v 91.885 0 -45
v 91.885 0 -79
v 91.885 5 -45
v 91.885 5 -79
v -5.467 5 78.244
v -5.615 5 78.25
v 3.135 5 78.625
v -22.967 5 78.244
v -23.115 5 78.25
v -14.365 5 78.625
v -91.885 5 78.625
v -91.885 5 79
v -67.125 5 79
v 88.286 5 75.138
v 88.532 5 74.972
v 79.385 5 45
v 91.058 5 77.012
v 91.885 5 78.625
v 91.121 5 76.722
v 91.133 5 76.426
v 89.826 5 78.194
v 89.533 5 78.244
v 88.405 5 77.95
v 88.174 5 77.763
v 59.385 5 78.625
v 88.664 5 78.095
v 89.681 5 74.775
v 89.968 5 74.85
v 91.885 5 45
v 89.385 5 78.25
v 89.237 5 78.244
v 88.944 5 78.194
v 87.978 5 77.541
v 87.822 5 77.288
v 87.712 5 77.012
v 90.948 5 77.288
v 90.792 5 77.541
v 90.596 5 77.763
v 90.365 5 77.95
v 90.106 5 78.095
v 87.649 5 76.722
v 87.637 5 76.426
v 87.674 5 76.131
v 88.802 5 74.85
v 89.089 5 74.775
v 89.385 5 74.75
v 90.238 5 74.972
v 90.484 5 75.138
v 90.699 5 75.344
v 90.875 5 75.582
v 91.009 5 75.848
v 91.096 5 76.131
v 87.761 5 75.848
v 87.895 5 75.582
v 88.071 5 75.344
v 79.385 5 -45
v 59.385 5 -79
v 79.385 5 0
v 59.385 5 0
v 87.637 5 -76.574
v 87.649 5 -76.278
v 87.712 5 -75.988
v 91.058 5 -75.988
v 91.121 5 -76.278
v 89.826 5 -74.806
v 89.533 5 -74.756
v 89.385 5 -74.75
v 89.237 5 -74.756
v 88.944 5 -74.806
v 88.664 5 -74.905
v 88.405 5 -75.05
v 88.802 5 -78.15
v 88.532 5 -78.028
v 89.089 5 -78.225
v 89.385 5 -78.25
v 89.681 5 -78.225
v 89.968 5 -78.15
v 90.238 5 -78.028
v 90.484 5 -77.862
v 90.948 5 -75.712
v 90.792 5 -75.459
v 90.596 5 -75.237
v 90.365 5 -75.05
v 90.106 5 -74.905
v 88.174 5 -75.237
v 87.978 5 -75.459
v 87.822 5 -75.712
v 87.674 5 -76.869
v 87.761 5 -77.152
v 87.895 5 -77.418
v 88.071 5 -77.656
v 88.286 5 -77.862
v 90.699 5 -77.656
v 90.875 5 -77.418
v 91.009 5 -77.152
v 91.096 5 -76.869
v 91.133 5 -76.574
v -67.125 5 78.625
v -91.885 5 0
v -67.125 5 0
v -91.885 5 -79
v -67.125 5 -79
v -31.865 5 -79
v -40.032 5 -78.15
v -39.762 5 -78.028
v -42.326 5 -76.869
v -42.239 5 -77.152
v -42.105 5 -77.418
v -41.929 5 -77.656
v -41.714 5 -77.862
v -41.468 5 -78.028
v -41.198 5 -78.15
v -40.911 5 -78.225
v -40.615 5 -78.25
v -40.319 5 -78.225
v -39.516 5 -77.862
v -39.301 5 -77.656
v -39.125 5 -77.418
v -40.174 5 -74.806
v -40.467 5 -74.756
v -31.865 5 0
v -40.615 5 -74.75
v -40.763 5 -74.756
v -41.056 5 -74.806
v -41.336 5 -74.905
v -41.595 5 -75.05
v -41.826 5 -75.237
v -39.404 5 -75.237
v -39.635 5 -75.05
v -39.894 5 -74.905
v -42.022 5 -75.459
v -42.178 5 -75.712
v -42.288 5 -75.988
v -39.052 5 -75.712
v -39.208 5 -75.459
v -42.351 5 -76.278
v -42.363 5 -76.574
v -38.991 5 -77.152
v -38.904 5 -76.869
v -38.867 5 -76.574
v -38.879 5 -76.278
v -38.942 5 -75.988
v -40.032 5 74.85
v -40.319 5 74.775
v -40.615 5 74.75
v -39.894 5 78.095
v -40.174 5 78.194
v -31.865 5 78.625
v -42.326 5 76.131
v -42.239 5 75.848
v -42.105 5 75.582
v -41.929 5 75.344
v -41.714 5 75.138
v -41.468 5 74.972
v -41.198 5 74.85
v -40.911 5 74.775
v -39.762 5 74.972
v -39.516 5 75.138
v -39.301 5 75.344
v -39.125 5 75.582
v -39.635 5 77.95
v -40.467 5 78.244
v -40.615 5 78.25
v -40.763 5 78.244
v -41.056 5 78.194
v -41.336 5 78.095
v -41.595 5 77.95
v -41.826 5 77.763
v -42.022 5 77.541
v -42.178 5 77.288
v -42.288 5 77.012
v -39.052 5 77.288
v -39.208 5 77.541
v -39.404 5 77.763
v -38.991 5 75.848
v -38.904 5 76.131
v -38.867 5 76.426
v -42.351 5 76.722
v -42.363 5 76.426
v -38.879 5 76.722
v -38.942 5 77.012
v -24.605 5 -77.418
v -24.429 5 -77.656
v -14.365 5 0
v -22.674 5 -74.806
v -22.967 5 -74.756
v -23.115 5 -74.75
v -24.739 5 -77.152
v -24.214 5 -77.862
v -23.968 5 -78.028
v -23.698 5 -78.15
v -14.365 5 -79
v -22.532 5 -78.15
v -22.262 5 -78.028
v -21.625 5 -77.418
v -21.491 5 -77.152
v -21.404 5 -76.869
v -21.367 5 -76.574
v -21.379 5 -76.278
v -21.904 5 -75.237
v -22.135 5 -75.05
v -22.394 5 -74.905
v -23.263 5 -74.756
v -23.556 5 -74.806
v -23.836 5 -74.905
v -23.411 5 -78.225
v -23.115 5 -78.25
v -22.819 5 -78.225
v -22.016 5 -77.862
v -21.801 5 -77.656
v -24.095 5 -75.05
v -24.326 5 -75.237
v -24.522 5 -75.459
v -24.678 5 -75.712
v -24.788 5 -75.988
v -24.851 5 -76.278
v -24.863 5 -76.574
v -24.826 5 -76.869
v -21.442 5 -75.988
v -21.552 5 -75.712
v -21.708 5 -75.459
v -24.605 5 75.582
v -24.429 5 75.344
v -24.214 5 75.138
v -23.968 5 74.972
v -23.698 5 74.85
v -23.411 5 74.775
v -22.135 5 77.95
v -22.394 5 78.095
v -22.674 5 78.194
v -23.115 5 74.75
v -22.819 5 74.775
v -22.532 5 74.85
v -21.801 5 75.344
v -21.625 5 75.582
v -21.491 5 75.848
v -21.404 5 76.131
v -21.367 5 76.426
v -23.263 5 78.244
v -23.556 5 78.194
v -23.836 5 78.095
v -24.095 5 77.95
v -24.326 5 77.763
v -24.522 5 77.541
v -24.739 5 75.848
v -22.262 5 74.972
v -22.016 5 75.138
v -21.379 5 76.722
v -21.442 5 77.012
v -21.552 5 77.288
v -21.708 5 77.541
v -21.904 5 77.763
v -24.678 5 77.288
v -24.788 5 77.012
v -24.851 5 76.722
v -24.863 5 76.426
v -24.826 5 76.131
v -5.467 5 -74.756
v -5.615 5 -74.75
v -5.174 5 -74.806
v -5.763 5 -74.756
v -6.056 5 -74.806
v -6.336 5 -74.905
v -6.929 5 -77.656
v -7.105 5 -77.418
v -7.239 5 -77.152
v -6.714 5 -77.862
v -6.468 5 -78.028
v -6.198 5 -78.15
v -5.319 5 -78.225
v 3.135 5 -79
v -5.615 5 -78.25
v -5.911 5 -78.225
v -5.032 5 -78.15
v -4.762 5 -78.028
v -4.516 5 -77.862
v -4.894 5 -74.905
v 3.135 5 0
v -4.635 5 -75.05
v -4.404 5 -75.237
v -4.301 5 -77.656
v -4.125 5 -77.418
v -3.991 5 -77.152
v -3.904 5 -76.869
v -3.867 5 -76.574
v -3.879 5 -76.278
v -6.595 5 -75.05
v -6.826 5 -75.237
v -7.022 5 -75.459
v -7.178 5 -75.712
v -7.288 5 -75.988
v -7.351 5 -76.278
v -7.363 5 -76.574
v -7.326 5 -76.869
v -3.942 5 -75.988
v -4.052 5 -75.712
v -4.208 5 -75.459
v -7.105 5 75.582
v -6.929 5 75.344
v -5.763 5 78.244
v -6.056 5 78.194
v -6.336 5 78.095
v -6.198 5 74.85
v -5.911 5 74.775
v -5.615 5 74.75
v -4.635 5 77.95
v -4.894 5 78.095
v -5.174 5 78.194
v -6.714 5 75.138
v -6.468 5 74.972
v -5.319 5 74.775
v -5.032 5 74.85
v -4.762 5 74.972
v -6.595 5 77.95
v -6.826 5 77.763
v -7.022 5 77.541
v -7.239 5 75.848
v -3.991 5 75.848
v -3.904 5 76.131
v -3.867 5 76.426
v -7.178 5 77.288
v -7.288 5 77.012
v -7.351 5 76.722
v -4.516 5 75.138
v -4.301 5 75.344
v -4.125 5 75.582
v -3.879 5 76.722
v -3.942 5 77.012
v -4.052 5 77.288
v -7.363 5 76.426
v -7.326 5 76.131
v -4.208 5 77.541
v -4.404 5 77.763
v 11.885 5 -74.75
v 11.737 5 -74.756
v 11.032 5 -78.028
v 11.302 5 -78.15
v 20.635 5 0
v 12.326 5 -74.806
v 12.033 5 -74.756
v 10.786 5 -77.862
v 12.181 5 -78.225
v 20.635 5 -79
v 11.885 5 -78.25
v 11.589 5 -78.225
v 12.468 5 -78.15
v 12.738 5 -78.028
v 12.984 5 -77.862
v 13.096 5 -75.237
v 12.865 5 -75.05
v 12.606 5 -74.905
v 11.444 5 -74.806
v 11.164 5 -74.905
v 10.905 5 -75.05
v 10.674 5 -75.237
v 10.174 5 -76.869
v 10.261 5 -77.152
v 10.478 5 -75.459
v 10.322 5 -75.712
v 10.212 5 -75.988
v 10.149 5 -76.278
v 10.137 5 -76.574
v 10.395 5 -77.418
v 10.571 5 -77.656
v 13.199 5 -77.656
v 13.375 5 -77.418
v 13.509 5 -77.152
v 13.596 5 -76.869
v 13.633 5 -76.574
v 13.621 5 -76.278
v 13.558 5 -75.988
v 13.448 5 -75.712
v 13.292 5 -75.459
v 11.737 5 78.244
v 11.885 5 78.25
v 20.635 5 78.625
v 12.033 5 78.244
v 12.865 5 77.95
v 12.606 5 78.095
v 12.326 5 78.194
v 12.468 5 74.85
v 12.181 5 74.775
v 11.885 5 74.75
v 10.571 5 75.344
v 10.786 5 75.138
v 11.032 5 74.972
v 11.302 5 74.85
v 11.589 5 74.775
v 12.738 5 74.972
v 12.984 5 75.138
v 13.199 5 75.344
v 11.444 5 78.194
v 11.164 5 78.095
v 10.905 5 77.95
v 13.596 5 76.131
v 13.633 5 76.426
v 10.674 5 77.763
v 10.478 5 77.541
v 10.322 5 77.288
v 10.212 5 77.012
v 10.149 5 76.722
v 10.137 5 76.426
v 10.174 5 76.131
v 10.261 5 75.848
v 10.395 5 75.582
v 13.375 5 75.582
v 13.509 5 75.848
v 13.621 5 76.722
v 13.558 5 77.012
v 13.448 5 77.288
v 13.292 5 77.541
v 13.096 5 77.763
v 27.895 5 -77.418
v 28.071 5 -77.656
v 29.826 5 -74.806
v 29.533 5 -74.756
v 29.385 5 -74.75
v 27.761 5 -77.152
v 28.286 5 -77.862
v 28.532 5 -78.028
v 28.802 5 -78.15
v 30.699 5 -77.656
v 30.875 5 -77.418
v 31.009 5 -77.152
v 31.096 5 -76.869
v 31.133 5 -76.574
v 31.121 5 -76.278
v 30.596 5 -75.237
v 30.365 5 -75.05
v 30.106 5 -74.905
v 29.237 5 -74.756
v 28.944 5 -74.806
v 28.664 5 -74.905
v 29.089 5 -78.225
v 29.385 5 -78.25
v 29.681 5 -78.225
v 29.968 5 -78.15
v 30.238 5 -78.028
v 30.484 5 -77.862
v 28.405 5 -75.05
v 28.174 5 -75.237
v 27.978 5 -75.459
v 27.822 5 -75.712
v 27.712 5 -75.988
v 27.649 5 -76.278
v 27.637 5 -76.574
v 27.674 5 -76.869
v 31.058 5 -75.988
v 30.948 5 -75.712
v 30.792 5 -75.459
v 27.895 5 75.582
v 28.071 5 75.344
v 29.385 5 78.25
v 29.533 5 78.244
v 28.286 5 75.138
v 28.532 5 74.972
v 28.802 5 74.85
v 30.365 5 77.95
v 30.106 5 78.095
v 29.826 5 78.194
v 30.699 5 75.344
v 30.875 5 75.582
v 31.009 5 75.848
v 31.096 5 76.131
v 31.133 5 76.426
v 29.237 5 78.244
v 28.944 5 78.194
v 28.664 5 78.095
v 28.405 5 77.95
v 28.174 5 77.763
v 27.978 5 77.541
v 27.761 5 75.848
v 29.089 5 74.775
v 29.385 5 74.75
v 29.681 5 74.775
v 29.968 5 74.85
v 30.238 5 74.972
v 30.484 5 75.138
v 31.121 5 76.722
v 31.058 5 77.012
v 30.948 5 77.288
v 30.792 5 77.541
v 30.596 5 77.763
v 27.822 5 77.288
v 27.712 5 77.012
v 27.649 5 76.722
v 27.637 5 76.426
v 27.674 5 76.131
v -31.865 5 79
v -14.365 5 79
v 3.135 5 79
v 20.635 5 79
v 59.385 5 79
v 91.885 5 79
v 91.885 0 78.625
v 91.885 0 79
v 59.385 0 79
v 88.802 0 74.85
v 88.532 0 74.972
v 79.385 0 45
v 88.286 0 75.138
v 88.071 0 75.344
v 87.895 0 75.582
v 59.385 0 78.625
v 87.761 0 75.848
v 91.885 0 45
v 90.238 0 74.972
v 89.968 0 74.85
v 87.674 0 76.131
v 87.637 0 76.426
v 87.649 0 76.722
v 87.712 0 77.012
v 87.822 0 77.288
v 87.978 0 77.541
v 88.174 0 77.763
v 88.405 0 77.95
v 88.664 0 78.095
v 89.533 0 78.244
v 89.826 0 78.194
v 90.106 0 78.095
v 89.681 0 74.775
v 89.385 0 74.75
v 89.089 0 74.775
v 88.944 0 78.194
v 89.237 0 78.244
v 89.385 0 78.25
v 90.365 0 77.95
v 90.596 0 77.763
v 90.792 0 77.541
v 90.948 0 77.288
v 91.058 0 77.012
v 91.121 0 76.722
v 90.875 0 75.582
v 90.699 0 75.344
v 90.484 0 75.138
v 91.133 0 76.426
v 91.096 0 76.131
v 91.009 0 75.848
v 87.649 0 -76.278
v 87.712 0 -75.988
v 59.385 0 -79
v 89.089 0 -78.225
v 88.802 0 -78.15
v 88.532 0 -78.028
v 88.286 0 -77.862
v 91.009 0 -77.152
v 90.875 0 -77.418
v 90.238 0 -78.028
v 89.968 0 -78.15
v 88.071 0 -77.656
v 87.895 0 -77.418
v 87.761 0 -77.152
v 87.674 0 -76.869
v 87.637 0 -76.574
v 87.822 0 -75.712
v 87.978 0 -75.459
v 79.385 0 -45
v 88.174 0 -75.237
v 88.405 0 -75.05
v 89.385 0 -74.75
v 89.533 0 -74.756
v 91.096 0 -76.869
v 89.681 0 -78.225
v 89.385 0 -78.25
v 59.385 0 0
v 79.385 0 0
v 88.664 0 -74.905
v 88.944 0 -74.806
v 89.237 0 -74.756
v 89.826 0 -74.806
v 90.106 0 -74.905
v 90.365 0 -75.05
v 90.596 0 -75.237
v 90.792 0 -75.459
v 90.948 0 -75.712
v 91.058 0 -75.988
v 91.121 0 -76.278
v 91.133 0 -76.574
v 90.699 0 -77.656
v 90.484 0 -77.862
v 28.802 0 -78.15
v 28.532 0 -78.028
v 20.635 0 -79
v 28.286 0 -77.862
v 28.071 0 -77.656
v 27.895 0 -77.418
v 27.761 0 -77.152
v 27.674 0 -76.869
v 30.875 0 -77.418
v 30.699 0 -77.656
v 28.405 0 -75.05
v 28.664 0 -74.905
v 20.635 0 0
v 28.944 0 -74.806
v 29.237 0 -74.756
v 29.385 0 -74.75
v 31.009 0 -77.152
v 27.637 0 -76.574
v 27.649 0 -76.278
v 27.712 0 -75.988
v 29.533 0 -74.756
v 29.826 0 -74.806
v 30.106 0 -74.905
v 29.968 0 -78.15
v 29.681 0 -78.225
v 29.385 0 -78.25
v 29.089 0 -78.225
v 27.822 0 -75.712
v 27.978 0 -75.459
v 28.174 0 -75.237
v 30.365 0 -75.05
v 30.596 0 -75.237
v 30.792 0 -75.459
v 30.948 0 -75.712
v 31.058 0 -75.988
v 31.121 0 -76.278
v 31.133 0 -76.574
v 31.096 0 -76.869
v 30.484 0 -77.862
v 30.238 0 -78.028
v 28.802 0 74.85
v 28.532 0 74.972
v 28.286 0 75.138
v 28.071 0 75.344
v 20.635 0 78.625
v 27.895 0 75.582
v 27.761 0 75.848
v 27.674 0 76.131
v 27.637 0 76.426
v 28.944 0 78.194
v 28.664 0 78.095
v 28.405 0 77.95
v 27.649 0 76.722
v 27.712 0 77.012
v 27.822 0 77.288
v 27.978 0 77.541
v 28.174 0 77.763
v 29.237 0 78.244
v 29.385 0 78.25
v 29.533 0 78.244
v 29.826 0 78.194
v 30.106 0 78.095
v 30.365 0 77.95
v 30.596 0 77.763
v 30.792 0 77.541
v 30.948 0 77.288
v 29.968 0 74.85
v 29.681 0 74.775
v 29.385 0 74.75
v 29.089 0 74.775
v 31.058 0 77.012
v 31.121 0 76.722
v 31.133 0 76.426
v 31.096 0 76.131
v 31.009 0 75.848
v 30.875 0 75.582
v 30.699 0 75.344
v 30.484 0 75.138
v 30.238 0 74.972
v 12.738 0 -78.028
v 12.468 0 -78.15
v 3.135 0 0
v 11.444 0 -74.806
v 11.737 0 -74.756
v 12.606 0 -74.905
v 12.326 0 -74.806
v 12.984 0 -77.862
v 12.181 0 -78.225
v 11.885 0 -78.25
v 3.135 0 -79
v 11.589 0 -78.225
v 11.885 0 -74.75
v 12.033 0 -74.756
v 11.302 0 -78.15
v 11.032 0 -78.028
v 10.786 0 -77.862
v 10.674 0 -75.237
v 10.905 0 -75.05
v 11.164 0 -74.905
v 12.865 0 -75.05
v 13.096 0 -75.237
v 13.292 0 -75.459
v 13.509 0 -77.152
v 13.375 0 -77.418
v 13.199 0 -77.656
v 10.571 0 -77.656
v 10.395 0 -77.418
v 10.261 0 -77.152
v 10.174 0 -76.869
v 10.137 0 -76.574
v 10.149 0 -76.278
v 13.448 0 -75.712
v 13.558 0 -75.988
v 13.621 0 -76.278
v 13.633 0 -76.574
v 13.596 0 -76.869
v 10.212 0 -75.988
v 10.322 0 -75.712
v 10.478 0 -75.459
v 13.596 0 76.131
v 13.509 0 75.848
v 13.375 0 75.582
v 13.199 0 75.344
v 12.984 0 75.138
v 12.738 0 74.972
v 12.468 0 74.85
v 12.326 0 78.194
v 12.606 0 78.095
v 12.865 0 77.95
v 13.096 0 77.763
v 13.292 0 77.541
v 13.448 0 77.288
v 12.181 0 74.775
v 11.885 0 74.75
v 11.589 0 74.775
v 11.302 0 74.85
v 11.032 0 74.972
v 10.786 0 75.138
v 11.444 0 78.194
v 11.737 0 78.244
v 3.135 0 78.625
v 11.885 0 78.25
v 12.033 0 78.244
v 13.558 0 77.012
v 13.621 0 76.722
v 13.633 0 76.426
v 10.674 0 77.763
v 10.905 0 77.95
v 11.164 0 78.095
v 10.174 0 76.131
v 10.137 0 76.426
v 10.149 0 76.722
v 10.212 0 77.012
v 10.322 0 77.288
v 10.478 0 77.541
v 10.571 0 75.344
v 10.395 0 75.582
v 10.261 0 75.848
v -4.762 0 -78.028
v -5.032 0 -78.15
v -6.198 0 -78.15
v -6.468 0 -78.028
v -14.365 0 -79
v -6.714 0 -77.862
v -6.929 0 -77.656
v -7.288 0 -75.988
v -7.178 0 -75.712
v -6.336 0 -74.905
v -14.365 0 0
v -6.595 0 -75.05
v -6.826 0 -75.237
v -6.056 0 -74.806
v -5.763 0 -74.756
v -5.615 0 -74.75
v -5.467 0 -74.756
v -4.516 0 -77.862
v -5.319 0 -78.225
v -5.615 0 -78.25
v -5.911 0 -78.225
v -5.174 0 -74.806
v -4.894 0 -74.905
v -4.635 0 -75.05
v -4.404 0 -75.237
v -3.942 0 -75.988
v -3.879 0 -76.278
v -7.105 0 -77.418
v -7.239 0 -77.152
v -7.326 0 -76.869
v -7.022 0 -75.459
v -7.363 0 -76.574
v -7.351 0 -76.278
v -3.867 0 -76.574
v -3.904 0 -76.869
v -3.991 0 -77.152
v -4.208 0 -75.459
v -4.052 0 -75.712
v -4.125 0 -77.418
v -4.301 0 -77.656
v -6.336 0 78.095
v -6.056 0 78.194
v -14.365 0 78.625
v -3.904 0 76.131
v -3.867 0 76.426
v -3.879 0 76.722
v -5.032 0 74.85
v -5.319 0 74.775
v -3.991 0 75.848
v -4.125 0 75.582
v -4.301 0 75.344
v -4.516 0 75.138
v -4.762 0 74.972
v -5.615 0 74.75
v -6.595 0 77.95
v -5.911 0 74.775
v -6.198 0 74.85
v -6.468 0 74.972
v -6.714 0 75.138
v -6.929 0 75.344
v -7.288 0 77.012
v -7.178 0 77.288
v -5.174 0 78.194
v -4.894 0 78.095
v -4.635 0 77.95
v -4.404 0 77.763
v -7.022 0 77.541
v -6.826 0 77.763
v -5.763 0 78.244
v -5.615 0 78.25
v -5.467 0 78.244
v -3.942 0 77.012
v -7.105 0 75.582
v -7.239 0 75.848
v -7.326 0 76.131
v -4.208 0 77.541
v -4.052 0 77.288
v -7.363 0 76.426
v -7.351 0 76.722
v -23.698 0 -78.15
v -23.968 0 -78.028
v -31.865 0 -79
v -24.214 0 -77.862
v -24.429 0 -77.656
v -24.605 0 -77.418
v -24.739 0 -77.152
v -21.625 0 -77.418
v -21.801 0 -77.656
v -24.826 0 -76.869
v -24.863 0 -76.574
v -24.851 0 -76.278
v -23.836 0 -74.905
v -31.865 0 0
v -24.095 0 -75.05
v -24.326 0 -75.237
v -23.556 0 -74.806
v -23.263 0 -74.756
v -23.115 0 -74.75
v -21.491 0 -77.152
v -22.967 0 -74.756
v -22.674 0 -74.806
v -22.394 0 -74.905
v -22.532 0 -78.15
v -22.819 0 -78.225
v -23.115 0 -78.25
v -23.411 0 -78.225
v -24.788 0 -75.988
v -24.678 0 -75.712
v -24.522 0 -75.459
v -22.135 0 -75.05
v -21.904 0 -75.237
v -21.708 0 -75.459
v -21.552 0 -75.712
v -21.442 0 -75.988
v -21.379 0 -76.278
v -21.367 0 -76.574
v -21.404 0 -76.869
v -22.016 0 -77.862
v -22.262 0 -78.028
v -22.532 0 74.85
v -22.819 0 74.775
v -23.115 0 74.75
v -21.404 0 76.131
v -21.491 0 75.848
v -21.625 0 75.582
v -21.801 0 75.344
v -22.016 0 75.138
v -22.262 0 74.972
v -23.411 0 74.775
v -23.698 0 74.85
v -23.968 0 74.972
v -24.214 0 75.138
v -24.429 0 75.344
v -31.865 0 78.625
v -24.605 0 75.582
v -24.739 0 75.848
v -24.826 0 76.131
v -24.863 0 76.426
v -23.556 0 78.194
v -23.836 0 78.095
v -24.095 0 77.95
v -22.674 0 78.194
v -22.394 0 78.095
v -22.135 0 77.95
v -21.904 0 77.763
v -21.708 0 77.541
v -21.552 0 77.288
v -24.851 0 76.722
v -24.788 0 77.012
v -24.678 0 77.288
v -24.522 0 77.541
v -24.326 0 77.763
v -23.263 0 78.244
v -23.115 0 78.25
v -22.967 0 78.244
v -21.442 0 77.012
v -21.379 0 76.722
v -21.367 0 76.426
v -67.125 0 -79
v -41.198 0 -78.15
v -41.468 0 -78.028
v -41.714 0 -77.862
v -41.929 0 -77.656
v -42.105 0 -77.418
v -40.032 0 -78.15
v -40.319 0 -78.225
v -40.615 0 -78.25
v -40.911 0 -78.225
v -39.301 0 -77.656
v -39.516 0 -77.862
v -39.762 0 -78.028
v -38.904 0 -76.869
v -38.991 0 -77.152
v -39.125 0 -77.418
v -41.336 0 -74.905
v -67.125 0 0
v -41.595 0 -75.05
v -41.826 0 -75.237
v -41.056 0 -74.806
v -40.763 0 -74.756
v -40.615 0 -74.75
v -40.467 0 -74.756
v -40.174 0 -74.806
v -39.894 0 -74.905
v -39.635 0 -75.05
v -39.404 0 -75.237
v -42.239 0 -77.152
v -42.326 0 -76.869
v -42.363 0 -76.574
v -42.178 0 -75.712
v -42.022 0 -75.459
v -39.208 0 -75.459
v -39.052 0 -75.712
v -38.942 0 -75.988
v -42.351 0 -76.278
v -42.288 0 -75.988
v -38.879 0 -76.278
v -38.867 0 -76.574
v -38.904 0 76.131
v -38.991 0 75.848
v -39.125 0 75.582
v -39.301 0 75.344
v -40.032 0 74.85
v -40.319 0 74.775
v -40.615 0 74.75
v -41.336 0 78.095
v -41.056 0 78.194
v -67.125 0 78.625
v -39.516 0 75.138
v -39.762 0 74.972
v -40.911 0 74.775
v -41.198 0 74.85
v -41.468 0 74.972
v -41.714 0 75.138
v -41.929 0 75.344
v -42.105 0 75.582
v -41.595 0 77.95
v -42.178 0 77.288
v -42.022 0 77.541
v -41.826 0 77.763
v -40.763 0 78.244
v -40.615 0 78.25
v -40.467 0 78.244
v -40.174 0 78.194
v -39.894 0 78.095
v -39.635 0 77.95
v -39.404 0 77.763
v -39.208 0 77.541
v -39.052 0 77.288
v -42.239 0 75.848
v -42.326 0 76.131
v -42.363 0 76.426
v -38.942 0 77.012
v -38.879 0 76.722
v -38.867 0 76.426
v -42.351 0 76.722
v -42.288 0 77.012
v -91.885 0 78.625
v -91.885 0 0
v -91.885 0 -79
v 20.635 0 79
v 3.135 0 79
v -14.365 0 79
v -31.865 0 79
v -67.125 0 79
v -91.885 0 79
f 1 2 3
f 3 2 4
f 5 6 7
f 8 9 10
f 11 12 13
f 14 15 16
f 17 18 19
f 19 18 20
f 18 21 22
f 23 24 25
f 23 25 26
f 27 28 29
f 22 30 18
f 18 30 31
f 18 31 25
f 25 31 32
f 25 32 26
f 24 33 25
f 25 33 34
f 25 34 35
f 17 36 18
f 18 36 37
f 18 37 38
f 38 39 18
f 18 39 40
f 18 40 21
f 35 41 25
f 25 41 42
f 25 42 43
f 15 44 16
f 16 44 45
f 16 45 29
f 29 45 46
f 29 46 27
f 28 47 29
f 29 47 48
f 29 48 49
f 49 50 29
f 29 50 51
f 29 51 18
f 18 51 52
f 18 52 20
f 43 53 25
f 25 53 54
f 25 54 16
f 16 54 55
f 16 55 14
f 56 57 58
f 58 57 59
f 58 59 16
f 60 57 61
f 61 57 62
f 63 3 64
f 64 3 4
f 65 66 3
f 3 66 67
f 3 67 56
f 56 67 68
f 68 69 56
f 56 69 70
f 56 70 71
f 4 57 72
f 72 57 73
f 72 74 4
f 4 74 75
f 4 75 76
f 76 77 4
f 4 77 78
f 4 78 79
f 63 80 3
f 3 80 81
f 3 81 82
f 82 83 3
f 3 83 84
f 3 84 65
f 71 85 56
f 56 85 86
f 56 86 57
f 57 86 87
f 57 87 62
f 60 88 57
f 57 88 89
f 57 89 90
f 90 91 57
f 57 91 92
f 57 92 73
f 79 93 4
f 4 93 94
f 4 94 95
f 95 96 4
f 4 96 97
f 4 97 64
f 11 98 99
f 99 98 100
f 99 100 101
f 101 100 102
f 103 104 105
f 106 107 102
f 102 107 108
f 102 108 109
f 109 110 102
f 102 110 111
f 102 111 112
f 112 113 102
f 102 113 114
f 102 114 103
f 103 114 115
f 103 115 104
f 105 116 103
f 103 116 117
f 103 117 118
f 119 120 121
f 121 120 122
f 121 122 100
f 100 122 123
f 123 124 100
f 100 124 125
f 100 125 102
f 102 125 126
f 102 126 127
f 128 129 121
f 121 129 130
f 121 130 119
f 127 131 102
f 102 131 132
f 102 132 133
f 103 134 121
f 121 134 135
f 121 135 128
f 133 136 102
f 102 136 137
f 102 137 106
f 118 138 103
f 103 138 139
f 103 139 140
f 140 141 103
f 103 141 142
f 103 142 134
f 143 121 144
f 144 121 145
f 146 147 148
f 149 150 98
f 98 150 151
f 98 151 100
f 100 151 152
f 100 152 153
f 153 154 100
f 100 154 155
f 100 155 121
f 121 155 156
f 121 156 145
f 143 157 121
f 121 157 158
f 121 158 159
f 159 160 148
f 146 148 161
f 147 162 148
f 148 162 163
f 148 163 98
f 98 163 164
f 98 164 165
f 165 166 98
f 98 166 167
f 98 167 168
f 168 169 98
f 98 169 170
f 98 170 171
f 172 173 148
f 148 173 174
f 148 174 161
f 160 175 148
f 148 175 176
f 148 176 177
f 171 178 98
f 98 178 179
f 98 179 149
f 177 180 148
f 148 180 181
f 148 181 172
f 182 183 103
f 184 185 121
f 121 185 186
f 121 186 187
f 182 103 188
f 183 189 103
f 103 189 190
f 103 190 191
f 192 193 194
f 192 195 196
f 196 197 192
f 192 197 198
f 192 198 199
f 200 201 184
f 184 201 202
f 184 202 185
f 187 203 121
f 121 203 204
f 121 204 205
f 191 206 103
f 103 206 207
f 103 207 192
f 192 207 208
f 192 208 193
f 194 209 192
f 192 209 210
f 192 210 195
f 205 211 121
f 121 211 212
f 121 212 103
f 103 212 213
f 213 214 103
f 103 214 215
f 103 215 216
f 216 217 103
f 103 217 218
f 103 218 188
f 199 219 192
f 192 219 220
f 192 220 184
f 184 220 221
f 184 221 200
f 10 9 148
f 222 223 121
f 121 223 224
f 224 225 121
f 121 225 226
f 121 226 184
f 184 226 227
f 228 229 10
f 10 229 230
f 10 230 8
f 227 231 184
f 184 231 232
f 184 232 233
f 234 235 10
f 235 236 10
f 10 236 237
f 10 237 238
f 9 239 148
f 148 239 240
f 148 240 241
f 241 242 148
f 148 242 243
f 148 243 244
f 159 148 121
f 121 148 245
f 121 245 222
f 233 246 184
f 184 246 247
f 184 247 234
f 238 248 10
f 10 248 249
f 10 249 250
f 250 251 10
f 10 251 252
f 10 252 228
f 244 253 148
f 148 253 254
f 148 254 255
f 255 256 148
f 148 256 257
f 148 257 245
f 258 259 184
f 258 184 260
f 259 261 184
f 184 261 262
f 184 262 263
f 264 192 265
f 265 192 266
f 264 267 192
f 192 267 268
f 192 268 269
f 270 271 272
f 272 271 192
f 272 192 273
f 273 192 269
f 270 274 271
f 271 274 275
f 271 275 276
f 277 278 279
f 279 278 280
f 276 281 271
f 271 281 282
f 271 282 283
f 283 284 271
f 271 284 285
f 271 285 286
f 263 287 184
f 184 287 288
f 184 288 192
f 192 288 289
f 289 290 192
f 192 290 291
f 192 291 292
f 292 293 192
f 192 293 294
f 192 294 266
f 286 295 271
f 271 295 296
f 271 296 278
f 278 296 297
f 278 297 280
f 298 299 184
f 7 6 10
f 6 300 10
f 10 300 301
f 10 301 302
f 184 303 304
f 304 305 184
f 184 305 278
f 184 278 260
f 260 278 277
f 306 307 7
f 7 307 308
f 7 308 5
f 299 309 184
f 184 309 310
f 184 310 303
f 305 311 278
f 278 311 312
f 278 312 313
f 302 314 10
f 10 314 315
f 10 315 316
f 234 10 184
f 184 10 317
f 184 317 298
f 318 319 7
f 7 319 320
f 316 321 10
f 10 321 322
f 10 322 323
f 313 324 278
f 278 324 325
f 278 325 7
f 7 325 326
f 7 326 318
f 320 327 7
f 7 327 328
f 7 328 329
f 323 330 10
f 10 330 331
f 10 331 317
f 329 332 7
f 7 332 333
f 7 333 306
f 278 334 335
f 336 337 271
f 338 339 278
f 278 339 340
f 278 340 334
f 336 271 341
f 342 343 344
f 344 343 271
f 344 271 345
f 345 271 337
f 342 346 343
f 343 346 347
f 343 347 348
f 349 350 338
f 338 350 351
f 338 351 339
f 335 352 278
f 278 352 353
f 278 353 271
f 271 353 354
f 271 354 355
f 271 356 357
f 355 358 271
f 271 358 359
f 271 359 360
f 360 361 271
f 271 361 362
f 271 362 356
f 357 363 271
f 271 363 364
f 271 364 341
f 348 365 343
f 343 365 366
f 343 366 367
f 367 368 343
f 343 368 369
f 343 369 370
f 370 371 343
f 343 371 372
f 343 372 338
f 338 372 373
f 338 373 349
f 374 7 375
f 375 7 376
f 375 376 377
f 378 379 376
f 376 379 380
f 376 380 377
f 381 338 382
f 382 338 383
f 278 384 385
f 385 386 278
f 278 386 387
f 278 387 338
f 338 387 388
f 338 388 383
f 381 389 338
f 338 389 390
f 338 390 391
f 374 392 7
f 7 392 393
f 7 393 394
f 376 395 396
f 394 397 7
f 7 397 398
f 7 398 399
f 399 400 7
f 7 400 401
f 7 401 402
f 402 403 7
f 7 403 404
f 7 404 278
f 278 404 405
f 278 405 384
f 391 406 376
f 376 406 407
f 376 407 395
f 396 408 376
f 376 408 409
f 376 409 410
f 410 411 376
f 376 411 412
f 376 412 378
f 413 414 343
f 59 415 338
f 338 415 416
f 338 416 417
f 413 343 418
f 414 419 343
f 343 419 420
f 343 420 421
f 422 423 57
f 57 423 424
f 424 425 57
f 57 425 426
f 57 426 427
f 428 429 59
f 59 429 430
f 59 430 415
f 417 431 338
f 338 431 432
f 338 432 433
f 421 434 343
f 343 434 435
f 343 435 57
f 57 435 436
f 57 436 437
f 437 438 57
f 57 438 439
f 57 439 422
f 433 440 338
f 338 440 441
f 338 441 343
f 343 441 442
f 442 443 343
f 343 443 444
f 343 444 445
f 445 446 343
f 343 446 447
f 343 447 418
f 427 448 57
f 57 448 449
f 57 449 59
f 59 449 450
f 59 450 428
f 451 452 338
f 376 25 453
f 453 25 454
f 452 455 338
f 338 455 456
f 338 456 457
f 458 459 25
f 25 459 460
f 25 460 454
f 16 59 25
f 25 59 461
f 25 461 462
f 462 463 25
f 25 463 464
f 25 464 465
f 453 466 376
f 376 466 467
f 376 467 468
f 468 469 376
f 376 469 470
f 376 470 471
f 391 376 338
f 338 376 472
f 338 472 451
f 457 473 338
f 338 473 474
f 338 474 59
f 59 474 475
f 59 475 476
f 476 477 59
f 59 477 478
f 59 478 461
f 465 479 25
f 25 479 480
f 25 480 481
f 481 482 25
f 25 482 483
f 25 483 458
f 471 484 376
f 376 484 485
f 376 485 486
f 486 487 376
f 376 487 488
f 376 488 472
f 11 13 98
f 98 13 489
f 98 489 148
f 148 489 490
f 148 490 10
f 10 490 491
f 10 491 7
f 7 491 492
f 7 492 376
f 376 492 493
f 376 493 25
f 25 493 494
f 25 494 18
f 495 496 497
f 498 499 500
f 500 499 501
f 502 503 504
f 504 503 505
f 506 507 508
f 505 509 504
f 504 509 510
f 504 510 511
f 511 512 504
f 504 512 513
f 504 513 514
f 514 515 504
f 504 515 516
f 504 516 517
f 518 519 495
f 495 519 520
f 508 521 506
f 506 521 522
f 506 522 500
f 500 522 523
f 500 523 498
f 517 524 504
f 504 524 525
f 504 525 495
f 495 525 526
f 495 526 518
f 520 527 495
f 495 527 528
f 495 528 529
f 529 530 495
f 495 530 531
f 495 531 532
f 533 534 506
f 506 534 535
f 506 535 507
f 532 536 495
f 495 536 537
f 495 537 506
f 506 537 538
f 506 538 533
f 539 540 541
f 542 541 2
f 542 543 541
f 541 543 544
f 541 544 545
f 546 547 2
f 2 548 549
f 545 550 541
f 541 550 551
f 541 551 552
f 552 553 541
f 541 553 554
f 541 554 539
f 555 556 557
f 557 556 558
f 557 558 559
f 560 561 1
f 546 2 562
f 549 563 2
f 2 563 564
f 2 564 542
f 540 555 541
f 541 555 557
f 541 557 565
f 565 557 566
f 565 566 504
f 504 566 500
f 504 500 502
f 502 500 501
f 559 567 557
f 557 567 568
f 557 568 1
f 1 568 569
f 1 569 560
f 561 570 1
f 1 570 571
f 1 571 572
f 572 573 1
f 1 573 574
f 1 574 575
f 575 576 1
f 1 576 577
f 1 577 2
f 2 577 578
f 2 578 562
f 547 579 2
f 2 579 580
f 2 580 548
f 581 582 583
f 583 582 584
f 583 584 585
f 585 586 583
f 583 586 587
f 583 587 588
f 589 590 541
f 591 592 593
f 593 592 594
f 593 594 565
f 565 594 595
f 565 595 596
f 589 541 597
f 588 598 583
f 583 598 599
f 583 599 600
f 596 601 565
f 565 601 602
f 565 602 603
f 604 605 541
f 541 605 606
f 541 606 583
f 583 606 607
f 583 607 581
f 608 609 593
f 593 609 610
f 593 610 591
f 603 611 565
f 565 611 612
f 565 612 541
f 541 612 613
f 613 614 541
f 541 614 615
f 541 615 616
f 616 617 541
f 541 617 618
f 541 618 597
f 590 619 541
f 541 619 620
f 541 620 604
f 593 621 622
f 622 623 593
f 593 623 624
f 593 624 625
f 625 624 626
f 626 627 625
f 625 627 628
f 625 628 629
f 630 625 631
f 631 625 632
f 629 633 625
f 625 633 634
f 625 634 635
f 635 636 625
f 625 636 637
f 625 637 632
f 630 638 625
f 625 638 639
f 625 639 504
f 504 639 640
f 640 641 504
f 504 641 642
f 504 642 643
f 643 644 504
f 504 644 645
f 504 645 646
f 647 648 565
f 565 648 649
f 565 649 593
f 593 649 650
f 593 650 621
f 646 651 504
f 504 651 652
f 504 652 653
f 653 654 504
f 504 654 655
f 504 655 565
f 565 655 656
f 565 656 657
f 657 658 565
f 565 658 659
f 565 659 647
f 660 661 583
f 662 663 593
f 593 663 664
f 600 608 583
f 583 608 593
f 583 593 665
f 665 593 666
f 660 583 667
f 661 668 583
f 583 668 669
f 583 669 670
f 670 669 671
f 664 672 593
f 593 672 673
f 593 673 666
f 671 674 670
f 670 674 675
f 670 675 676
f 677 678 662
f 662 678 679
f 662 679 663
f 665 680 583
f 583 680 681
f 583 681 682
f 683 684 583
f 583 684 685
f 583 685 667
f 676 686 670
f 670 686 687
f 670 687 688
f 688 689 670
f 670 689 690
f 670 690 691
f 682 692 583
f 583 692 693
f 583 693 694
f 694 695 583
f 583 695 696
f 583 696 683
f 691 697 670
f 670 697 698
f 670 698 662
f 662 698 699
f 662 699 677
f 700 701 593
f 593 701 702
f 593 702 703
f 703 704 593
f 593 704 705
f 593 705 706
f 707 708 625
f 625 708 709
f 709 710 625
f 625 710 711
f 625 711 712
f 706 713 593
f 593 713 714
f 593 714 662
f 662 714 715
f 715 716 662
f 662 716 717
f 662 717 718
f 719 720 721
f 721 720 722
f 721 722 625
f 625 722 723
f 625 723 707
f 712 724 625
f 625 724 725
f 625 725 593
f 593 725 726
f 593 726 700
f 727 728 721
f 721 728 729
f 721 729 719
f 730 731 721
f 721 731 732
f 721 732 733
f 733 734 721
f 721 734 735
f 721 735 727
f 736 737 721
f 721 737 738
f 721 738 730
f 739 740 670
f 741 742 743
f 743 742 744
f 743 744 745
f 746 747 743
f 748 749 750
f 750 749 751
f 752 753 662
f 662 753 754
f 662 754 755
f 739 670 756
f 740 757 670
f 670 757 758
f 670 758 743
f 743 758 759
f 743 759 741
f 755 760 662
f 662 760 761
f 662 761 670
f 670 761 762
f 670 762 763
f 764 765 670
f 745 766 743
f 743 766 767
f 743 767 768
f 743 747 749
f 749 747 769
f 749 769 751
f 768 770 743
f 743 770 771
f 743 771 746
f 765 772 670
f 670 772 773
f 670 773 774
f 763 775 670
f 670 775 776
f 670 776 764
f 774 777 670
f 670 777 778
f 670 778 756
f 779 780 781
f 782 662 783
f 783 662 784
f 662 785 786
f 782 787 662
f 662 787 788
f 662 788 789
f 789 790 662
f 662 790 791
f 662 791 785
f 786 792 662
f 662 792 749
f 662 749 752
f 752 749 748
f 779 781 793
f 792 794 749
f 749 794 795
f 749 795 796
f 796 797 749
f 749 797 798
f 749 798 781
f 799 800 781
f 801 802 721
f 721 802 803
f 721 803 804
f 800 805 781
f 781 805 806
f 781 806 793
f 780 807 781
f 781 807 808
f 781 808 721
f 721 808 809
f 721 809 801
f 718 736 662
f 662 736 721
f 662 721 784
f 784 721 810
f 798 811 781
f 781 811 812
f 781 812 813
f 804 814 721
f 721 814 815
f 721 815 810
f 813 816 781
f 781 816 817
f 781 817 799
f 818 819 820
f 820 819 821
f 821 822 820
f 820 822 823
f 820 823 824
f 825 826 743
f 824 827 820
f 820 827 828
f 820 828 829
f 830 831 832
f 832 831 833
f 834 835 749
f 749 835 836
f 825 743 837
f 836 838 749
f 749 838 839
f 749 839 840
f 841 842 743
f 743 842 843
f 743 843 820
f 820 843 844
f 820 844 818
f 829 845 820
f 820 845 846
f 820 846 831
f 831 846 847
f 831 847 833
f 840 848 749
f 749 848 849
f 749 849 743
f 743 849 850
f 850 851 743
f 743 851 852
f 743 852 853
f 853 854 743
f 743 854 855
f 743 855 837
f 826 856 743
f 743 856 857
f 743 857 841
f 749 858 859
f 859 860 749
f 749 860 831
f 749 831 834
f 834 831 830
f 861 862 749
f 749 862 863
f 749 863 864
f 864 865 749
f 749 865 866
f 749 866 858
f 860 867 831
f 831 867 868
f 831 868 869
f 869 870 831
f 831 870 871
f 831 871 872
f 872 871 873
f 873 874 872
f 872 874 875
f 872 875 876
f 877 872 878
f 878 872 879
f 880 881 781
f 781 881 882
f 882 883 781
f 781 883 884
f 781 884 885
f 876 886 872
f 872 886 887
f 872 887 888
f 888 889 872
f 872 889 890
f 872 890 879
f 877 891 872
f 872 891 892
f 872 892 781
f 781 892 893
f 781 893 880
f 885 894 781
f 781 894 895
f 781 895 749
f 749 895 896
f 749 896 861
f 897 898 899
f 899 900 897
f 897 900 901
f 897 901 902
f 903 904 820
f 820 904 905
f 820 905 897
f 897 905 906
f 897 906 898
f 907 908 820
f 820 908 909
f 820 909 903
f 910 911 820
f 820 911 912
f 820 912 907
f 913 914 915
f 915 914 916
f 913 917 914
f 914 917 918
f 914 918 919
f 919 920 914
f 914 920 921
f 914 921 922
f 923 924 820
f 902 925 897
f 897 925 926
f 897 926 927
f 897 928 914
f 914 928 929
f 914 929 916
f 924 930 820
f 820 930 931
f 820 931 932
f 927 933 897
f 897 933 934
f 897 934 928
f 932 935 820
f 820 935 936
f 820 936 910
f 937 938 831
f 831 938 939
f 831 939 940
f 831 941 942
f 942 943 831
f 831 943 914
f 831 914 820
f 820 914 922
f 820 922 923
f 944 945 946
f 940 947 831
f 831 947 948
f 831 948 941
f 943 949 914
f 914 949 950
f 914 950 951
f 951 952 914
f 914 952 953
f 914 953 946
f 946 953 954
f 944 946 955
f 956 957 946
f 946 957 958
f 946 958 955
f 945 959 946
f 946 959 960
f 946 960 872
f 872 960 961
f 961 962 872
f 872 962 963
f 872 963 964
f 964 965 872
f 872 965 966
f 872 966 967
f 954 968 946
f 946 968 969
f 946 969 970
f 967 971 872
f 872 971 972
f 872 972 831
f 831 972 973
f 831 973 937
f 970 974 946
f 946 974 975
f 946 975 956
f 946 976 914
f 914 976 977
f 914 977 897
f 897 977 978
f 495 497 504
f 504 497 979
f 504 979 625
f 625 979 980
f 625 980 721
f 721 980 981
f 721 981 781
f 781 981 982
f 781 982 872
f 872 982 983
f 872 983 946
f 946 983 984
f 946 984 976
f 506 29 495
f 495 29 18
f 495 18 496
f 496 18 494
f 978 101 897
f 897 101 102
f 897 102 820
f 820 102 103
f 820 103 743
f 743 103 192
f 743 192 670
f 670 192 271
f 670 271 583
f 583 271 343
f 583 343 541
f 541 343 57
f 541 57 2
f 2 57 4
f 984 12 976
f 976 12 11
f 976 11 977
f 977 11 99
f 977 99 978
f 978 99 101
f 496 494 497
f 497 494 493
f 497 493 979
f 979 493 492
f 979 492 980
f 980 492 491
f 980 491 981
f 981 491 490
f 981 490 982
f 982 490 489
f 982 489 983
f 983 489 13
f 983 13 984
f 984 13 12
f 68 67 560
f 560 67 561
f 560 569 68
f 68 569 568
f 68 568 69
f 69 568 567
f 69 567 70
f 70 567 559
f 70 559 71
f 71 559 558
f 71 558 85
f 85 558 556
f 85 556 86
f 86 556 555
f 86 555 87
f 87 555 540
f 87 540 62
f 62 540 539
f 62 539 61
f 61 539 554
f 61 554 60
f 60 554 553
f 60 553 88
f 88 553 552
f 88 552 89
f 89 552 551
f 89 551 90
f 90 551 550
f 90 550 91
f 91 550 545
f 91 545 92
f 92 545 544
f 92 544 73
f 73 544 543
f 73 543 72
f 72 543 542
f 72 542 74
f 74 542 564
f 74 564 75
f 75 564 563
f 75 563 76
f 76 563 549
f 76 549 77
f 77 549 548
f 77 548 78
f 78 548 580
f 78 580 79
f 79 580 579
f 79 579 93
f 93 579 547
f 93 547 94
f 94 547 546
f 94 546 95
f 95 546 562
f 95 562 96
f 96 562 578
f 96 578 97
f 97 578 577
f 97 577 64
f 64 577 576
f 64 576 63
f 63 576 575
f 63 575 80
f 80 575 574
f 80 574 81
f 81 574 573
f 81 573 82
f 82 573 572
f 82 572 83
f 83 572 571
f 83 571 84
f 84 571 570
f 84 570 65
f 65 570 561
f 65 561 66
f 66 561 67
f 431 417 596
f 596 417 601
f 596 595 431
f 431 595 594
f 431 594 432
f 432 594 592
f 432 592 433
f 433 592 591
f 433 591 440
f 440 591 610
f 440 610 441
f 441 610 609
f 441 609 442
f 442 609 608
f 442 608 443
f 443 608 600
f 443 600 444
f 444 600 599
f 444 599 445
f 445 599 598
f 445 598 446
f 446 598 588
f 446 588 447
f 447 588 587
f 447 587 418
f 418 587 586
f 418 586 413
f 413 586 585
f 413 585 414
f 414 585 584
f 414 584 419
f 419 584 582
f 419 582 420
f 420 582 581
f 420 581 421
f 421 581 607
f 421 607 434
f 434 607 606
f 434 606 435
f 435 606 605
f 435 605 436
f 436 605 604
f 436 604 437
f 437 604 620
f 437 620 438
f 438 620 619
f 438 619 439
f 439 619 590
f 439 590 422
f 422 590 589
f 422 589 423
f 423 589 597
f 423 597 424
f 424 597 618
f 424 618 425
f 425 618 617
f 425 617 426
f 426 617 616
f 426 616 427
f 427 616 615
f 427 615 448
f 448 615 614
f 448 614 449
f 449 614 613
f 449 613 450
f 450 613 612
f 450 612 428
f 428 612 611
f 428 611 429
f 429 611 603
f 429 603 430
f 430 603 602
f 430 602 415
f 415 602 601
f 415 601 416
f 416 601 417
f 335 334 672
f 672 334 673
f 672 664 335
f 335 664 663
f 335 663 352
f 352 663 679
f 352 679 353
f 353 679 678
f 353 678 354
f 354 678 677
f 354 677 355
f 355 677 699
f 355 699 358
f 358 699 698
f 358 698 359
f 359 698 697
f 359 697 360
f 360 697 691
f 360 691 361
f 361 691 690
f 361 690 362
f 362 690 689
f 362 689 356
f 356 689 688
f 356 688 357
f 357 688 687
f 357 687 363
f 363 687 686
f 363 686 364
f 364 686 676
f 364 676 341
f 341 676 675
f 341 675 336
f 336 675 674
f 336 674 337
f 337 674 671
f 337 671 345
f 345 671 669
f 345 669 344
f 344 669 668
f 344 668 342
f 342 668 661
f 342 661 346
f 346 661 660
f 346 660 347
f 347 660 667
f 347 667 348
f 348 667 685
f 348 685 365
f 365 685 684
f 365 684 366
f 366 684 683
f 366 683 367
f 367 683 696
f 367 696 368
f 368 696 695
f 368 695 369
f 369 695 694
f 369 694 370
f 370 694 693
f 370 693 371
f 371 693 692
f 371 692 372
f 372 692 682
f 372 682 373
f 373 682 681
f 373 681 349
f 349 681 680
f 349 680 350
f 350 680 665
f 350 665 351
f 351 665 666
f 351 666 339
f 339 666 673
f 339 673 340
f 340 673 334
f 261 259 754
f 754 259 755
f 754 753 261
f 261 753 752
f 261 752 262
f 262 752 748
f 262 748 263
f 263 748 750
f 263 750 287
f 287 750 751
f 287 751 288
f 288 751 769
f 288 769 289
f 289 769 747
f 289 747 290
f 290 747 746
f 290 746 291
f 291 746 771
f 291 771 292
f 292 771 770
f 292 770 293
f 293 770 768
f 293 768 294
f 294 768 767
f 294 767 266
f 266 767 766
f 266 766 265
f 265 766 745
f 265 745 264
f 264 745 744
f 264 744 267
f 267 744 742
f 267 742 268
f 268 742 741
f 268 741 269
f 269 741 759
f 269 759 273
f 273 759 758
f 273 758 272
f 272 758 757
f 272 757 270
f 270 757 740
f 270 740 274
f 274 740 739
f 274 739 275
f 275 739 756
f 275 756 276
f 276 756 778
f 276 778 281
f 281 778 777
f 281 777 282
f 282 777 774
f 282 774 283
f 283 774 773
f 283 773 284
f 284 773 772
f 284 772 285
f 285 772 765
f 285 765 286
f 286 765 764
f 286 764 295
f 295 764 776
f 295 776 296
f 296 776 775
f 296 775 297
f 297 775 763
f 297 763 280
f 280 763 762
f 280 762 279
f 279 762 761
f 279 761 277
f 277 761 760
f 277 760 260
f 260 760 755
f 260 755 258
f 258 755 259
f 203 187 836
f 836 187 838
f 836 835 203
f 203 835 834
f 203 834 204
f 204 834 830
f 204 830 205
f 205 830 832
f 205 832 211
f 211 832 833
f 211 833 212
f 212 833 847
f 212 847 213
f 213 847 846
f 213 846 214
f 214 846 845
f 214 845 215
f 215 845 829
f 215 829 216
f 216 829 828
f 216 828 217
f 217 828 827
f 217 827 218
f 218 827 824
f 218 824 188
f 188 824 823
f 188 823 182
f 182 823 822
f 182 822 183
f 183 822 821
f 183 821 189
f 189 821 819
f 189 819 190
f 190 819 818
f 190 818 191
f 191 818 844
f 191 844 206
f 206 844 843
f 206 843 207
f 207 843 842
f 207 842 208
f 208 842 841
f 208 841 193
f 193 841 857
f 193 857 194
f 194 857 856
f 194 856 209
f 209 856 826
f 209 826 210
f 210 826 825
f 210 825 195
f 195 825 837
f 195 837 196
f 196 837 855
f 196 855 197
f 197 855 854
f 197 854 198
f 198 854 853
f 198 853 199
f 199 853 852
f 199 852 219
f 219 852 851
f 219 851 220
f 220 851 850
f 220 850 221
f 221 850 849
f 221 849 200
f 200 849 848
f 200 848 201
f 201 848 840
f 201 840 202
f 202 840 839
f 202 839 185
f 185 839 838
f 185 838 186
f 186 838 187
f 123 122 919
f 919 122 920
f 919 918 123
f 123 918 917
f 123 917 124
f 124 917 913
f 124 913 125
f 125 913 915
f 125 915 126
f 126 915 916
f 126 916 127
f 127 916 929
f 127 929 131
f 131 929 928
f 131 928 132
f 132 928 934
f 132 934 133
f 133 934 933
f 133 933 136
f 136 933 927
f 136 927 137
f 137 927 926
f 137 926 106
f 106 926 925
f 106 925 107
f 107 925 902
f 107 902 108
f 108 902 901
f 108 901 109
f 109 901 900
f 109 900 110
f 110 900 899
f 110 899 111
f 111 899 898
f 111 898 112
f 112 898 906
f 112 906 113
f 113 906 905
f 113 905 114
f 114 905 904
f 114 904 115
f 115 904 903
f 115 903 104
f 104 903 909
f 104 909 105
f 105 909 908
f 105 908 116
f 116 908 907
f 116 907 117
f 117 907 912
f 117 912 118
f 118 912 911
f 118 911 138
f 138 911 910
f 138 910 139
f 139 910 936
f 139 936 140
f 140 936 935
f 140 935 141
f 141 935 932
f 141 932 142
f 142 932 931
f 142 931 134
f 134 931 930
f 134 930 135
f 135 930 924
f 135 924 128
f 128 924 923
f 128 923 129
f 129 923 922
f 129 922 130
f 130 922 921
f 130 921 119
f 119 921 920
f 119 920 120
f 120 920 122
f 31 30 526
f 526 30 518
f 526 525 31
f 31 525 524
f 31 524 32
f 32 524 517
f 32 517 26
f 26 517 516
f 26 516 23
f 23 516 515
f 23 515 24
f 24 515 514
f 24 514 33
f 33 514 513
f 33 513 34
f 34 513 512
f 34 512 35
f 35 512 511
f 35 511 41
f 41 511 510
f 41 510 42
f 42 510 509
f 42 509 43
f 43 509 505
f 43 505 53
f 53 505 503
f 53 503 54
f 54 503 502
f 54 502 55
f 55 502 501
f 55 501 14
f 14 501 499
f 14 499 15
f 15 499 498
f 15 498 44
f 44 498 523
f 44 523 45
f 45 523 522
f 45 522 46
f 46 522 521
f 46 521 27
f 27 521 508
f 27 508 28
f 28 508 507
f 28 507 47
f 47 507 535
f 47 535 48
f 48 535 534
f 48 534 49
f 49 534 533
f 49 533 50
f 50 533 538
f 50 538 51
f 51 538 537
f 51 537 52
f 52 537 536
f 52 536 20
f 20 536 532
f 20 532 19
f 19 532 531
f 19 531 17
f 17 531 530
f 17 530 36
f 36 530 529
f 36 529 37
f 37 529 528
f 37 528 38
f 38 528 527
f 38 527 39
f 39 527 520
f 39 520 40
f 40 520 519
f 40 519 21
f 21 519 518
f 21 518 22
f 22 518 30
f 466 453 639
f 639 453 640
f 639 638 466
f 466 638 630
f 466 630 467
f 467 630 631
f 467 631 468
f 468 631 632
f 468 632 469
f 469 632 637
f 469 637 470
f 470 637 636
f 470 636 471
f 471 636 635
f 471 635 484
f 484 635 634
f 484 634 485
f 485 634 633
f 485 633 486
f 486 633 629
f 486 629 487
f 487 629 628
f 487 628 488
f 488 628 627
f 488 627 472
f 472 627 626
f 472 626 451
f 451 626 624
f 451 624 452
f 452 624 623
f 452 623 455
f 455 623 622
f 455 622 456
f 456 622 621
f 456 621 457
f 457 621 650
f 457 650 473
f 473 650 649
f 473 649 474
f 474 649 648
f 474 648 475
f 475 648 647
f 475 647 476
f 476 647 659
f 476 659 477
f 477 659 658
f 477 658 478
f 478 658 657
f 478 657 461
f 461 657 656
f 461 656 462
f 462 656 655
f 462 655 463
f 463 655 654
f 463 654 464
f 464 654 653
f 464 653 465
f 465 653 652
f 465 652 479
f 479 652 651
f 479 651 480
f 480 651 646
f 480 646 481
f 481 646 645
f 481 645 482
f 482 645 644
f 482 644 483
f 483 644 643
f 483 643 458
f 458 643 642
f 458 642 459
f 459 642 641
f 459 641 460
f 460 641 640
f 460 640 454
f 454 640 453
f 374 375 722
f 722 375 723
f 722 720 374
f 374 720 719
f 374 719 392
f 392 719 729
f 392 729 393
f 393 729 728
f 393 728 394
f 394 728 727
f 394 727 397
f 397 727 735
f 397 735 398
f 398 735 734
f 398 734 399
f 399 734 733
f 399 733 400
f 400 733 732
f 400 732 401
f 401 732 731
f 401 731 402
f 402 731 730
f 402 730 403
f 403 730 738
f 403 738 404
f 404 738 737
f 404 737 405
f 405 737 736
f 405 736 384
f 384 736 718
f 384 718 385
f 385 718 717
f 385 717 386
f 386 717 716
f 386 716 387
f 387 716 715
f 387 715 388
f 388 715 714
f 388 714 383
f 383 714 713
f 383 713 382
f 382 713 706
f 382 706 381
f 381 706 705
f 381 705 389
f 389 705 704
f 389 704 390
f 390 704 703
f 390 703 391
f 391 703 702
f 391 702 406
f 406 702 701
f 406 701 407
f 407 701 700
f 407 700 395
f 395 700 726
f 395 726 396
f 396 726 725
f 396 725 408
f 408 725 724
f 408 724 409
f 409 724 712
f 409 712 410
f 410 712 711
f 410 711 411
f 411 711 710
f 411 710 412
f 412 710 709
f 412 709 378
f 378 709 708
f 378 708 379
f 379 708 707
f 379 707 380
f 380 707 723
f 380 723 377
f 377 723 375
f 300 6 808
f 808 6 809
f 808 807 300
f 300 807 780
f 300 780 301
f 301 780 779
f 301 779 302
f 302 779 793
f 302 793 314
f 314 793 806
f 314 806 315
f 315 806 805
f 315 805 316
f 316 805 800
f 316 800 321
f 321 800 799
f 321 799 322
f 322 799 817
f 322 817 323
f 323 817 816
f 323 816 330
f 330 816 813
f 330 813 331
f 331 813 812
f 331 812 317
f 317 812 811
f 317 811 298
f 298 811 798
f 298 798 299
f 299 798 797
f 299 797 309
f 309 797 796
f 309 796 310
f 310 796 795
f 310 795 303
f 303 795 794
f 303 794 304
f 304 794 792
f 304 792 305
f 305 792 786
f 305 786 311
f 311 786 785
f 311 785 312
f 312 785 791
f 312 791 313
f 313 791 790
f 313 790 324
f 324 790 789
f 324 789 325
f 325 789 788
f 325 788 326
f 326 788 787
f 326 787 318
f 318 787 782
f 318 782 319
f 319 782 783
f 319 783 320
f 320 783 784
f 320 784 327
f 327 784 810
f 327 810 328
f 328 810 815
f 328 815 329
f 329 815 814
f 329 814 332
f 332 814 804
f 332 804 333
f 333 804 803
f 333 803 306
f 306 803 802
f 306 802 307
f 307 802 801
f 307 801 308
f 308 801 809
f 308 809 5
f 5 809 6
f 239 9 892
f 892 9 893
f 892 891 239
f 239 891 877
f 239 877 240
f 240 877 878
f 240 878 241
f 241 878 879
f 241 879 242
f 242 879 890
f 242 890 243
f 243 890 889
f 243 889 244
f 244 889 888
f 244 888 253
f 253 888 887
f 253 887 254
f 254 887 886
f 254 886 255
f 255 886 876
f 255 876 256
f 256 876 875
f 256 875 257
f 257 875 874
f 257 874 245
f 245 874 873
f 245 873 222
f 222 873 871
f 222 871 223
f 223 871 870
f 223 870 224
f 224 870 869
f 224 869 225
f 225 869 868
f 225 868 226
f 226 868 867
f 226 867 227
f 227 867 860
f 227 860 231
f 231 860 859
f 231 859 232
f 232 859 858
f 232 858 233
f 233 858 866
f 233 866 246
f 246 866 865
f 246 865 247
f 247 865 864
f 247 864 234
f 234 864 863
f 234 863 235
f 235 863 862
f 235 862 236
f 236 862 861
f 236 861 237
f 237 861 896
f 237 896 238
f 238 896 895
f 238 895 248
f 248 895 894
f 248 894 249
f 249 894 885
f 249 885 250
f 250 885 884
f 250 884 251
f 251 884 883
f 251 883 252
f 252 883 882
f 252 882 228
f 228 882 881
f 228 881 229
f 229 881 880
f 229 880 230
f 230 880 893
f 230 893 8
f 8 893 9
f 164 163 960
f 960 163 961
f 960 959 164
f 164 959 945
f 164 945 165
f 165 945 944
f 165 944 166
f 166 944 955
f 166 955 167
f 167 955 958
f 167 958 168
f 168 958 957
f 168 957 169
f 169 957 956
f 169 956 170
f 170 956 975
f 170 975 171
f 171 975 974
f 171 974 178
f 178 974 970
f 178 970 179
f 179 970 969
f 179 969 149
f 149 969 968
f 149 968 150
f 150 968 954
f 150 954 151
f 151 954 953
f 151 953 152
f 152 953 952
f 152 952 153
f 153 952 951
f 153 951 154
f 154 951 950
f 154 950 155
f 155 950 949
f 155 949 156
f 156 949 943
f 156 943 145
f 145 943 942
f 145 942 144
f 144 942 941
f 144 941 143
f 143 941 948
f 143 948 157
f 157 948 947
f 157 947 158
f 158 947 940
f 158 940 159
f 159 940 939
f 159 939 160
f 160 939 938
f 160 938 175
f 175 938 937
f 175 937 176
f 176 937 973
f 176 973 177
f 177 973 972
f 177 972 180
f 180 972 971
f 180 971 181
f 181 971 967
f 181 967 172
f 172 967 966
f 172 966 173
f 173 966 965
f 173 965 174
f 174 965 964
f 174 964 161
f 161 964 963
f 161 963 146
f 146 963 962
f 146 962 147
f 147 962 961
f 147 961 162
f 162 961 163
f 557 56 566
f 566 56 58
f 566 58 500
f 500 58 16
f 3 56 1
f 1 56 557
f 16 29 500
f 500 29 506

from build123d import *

# Parameters (mm, degrees)
SKETCH1_W           = 183.77
SKETCH1_H           = 158
SKETCH1_R           = 1.75
BOSS_EXTRUDE1_DEPTH = 5
SKETCH2_W           = 25
SKETCH2_H           = 90
CUT_EXTRUDE1_DEPTH  = 10


with BuildPart() as part:
    # Sketch1 → Boss-Extrude1 (new body)
    with BuildSketch(Plane(origin=(0, 0, 0), x_dir=(1, 0, 0), z_dir=(0, 1, 0))):
        Rectangle(SKETCH1_W, SKETCH1_H)
        with Locations(Location((89.385, 76.5, 0), (0, 0, 270))):
            Circle(SKETCH1_R, mode=Mode.SUBTRACT)
        with Locations(Location((29.385, 76.5, 0), (0, 0, 270))):
            Circle(SKETCH1_R, mode=Mode.SUBTRACT)
        with Locations(Location((11.885, 76.5, 0), (0, 0, 270))):
            Circle(SKETCH1_R, mode=Mode.SUBTRACT)
        with Locations(Location((-5.615, 76.5, 0), (0, 0, 270))):
            Circle(SKETCH1_R, mode=Mode.SUBTRACT)
        with Locations(Location((-23.115, 76.5, 0), (0, 0, 270))):
            Circle(SKETCH1_R, mode=Mode.SUBTRACT)
        with Locations(Location((-40.615, 76.5, 0), (0, 0, 270))):
            Circle(SKETCH1_R, mode=Mode.SUBTRACT)
        with Locations(Location((89.385, -76.5, 0), (0, 0, 270))):
            Circle(SKETCH1_R, mode=Mode.SUBTRACT)
        with Locations(Location((29.385, -76.5, 0), (0, 0, 270))):
            Circle(SKETCH1_R, mode=Mode.SUBTRACT)
        with Locations(Location((11.885, -76.5, 0), (0, 0, 270))):
            Circle(SKETCH1_R, mode=Mode.SUBTRACT)
        with Locations(Location((-5.615, -76.5, 0), (0, 0, 270))):
            Circle(SKETCH1_R, mode=Mode.SUBTRACT)
        with Locations(Location((-23.115, -76.5, 0), (0, 0, 270))):
            Circle(SKETCH1_R, mode=Mode.SUBTRACT)
        with Locations(Location((-40.615, -76.5, 0), (0, 0, 270))):
            Circle(SKETCH1_R, mode=Mode.SUBTRACT)
    extrude(amount=BOSS_EXTRUDE1_DEPTH)

    # Sketch2 → Cut-Extrude1 (cut)
    with BuildSketch(Plane(origin=(0, 5, 0), x_dir=(1, 0, 0), z_dir=(0, 1, 0))):
        with Locations((91.885, 0)):
            Rectangle(SKETCH2_W, SKETCH2_H)
    extrude(amount=-CUT_EXTRUDE1_DEPTH, mode=Mode.SUBTRACT)


solid = part.part
